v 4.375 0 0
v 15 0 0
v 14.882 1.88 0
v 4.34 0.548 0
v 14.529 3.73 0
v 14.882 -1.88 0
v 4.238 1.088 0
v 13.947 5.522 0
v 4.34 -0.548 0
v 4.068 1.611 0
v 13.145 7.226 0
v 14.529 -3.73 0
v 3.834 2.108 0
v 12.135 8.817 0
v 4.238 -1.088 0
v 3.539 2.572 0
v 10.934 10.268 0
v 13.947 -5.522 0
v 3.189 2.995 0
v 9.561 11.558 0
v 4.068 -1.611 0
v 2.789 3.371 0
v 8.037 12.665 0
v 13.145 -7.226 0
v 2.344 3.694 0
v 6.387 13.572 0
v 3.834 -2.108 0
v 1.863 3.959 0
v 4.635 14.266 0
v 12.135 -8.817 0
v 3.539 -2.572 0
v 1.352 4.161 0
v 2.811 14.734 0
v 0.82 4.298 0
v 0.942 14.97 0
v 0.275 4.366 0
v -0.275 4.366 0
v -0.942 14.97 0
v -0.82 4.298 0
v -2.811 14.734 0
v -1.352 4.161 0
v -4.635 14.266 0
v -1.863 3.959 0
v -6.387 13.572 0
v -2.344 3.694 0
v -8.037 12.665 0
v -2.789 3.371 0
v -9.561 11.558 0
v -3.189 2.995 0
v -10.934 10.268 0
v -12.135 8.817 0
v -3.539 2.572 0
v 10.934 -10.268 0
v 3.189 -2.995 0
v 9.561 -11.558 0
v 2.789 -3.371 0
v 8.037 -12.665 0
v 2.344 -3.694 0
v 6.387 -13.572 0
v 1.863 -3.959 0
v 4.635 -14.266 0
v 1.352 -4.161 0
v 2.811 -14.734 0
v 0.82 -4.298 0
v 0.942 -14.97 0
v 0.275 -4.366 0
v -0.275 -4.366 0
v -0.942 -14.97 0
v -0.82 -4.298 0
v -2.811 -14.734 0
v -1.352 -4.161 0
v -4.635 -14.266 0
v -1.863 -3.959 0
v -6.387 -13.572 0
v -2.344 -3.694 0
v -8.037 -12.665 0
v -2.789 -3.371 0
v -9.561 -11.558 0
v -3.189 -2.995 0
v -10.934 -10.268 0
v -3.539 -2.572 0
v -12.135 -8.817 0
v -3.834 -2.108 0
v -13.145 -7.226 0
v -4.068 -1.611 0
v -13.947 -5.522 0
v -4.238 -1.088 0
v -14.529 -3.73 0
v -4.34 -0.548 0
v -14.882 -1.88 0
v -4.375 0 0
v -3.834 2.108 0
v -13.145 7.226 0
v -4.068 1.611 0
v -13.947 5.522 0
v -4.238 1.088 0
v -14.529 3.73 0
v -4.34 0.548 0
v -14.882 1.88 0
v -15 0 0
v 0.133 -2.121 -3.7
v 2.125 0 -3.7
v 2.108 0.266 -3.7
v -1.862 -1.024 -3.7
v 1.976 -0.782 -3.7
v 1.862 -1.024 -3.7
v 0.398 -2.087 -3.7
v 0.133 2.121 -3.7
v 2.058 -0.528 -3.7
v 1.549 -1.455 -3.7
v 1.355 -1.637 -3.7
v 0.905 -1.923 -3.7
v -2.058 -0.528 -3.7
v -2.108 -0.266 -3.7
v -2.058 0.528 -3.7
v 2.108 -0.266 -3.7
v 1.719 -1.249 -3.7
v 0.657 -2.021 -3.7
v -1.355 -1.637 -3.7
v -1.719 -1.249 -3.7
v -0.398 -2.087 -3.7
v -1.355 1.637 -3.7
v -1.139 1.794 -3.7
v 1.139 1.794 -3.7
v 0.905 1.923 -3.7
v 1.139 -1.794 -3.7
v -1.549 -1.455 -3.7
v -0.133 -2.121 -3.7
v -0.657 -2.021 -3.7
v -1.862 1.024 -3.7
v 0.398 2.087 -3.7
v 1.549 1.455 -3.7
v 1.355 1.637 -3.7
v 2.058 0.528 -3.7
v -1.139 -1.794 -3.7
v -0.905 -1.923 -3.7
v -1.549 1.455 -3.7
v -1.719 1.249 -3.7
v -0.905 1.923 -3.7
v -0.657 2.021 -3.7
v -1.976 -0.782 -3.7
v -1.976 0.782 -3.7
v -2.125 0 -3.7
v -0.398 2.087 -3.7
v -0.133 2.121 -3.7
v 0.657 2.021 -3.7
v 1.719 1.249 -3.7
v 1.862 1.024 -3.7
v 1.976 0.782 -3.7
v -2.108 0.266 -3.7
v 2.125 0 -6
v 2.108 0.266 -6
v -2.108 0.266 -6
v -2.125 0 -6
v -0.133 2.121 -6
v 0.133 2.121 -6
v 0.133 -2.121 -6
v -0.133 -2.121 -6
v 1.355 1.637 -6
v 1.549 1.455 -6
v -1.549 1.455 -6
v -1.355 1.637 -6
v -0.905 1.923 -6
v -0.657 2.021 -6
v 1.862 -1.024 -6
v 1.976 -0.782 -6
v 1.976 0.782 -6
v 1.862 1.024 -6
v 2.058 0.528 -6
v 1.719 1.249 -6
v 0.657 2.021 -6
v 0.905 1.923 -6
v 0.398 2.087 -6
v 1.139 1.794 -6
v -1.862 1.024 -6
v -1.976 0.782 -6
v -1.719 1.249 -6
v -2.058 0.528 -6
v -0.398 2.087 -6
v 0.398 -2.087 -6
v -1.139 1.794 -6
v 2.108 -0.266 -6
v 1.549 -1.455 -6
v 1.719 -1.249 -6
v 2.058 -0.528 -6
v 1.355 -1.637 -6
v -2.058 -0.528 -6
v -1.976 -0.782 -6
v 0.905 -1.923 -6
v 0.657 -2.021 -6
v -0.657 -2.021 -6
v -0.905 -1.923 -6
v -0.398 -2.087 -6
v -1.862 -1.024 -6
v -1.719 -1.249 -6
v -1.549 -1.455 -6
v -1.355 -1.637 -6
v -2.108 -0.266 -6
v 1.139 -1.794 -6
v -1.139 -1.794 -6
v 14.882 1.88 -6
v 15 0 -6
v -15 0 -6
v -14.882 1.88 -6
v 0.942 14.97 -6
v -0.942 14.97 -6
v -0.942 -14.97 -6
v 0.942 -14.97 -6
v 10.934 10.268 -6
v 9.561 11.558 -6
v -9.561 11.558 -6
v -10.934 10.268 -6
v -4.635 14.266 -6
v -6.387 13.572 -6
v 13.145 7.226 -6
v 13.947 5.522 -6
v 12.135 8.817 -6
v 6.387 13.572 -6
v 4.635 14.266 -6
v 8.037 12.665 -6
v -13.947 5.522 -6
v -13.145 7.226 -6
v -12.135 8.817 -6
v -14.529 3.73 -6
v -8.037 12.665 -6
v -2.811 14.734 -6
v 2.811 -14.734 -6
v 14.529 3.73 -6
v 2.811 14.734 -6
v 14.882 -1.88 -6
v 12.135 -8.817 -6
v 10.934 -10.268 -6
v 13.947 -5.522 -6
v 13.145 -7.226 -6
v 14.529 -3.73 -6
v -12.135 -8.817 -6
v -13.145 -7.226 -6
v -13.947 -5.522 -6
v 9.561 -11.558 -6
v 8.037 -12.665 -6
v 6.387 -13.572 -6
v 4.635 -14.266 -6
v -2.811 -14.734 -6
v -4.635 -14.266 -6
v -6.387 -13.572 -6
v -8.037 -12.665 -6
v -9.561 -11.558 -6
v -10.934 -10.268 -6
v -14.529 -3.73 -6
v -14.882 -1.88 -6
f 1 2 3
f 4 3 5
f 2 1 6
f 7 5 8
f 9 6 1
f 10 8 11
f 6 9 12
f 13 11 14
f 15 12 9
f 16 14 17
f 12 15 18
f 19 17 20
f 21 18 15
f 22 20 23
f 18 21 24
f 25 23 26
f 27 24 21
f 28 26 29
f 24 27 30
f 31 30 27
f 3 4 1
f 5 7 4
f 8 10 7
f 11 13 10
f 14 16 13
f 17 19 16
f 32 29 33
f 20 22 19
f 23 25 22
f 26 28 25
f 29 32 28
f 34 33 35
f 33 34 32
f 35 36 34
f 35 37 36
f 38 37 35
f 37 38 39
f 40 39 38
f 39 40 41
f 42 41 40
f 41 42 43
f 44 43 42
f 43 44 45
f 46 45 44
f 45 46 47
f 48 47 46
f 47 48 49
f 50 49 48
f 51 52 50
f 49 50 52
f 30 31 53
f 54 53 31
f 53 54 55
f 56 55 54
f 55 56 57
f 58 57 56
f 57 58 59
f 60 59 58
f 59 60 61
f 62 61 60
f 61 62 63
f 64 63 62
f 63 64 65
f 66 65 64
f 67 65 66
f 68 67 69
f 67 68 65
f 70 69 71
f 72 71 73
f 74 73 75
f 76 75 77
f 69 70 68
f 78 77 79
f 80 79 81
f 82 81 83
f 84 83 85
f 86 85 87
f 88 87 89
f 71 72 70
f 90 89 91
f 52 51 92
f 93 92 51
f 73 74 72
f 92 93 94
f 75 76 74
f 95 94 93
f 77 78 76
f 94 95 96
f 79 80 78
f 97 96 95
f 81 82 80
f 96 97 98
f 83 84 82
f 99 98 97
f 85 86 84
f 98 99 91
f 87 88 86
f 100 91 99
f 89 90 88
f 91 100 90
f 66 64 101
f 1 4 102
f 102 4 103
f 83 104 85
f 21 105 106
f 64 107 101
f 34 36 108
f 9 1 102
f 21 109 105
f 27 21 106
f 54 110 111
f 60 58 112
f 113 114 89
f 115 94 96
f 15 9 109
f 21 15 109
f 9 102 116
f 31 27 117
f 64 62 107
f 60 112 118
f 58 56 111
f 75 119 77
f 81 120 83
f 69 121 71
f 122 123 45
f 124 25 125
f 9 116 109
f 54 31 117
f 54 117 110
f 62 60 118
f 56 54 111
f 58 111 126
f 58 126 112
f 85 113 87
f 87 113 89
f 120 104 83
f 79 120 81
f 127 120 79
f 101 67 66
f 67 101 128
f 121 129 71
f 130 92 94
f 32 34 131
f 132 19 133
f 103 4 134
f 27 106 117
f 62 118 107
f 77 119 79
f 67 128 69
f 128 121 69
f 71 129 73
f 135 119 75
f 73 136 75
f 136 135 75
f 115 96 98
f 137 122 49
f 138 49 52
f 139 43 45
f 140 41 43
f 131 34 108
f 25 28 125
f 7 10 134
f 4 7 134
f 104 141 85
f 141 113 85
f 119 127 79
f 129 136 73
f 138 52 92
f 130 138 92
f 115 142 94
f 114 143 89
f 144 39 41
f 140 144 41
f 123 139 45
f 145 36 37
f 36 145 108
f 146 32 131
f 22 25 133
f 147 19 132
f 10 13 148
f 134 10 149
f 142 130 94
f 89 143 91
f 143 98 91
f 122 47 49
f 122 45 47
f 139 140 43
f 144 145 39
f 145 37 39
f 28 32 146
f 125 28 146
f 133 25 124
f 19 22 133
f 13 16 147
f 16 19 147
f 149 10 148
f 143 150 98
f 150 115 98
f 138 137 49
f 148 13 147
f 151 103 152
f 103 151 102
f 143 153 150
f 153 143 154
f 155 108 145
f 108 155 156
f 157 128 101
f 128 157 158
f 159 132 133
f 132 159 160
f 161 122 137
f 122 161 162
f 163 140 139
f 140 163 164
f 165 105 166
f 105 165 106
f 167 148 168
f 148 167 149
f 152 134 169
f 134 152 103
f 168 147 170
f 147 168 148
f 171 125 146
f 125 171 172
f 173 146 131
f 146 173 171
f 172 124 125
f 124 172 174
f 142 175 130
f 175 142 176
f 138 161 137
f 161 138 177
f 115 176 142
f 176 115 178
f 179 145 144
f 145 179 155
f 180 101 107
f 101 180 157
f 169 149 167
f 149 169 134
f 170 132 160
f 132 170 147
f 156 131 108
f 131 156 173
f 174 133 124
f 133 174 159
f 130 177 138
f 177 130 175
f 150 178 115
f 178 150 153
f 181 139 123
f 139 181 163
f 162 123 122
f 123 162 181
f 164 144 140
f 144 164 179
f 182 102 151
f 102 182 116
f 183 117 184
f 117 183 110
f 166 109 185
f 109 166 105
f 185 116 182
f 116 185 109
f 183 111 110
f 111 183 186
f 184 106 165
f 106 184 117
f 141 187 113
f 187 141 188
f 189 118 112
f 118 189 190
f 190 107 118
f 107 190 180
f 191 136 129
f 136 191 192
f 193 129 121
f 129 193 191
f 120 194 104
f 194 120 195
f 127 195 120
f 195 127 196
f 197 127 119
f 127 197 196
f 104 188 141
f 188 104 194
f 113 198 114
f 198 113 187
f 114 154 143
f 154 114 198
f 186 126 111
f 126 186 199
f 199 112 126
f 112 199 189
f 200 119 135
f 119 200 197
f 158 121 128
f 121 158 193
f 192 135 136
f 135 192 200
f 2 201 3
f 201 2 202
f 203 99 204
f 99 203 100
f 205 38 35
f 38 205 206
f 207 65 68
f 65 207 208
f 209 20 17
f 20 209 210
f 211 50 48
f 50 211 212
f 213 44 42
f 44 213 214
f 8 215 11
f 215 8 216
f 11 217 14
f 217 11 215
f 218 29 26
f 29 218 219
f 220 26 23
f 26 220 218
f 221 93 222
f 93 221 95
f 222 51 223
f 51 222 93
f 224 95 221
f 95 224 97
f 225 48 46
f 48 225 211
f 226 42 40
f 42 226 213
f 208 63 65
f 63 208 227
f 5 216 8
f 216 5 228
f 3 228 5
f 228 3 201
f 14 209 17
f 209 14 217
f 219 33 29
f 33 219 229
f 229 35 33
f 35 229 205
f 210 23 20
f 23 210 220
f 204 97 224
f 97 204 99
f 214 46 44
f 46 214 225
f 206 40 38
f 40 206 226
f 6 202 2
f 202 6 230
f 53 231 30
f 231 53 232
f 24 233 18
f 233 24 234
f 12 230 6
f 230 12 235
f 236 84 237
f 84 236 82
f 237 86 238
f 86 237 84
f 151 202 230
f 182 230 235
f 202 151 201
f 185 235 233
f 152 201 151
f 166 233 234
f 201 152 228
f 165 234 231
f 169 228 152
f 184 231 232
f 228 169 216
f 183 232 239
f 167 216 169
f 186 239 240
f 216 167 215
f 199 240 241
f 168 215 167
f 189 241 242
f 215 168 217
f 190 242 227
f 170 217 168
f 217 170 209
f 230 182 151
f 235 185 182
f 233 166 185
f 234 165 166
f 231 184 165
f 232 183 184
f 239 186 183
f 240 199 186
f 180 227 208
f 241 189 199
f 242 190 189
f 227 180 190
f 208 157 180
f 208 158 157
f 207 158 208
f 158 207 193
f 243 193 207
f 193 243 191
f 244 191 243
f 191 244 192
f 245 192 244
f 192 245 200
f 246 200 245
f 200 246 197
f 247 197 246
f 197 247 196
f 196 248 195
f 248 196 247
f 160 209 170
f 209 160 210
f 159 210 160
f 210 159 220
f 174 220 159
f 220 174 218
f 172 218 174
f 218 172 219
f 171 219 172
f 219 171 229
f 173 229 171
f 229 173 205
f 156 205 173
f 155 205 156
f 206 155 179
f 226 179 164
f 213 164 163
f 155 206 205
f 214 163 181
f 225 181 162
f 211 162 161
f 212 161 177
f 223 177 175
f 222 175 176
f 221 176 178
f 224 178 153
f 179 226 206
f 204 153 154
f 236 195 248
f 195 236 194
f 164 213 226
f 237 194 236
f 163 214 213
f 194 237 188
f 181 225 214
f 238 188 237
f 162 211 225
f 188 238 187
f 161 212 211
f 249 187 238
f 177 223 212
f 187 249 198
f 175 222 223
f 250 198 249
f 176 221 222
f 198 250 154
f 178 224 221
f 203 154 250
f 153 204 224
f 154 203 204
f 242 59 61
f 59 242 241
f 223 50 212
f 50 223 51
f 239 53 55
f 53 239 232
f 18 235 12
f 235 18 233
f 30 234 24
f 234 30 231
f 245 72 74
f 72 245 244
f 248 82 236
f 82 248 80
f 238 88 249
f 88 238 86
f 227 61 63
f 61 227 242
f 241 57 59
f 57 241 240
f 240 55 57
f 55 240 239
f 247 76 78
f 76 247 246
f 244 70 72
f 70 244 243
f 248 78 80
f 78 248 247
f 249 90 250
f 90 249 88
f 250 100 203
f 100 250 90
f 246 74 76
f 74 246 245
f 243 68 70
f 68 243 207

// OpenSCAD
$fn = 50;


difference() {
	union() {
		translate(v = [0, 0, -6.0000000000]) {
			cylinder(h = 6, r = 15.0000000000);
		}
	}
	union() {
		translate(v = [0, 0, 0]) {
			rotate(a = [0, 0, 0]) {
				difference() {
					union() {
						translate(v = [0, 0, -9.0000000000]) {
							cylinder(h = 9, r = 2.0000000000);
						}
						translate(v = [0, 0, -3.7000000000]) {
							cylinder(h = 3.7000000000, r1 = 2.1250000000, r2 = 4.3750000000);
						}
						translate(v = [0, 0, -9.0000000000]) {
							cylinder(h = 9, r = 2.1250000000);
						}
						translate(v = [0, 0, -9.0000000000]) {
							cylinder(h = 9, r = 2.0000000000);
						}
					}
					union();
				}
			}
		}
	}
}
